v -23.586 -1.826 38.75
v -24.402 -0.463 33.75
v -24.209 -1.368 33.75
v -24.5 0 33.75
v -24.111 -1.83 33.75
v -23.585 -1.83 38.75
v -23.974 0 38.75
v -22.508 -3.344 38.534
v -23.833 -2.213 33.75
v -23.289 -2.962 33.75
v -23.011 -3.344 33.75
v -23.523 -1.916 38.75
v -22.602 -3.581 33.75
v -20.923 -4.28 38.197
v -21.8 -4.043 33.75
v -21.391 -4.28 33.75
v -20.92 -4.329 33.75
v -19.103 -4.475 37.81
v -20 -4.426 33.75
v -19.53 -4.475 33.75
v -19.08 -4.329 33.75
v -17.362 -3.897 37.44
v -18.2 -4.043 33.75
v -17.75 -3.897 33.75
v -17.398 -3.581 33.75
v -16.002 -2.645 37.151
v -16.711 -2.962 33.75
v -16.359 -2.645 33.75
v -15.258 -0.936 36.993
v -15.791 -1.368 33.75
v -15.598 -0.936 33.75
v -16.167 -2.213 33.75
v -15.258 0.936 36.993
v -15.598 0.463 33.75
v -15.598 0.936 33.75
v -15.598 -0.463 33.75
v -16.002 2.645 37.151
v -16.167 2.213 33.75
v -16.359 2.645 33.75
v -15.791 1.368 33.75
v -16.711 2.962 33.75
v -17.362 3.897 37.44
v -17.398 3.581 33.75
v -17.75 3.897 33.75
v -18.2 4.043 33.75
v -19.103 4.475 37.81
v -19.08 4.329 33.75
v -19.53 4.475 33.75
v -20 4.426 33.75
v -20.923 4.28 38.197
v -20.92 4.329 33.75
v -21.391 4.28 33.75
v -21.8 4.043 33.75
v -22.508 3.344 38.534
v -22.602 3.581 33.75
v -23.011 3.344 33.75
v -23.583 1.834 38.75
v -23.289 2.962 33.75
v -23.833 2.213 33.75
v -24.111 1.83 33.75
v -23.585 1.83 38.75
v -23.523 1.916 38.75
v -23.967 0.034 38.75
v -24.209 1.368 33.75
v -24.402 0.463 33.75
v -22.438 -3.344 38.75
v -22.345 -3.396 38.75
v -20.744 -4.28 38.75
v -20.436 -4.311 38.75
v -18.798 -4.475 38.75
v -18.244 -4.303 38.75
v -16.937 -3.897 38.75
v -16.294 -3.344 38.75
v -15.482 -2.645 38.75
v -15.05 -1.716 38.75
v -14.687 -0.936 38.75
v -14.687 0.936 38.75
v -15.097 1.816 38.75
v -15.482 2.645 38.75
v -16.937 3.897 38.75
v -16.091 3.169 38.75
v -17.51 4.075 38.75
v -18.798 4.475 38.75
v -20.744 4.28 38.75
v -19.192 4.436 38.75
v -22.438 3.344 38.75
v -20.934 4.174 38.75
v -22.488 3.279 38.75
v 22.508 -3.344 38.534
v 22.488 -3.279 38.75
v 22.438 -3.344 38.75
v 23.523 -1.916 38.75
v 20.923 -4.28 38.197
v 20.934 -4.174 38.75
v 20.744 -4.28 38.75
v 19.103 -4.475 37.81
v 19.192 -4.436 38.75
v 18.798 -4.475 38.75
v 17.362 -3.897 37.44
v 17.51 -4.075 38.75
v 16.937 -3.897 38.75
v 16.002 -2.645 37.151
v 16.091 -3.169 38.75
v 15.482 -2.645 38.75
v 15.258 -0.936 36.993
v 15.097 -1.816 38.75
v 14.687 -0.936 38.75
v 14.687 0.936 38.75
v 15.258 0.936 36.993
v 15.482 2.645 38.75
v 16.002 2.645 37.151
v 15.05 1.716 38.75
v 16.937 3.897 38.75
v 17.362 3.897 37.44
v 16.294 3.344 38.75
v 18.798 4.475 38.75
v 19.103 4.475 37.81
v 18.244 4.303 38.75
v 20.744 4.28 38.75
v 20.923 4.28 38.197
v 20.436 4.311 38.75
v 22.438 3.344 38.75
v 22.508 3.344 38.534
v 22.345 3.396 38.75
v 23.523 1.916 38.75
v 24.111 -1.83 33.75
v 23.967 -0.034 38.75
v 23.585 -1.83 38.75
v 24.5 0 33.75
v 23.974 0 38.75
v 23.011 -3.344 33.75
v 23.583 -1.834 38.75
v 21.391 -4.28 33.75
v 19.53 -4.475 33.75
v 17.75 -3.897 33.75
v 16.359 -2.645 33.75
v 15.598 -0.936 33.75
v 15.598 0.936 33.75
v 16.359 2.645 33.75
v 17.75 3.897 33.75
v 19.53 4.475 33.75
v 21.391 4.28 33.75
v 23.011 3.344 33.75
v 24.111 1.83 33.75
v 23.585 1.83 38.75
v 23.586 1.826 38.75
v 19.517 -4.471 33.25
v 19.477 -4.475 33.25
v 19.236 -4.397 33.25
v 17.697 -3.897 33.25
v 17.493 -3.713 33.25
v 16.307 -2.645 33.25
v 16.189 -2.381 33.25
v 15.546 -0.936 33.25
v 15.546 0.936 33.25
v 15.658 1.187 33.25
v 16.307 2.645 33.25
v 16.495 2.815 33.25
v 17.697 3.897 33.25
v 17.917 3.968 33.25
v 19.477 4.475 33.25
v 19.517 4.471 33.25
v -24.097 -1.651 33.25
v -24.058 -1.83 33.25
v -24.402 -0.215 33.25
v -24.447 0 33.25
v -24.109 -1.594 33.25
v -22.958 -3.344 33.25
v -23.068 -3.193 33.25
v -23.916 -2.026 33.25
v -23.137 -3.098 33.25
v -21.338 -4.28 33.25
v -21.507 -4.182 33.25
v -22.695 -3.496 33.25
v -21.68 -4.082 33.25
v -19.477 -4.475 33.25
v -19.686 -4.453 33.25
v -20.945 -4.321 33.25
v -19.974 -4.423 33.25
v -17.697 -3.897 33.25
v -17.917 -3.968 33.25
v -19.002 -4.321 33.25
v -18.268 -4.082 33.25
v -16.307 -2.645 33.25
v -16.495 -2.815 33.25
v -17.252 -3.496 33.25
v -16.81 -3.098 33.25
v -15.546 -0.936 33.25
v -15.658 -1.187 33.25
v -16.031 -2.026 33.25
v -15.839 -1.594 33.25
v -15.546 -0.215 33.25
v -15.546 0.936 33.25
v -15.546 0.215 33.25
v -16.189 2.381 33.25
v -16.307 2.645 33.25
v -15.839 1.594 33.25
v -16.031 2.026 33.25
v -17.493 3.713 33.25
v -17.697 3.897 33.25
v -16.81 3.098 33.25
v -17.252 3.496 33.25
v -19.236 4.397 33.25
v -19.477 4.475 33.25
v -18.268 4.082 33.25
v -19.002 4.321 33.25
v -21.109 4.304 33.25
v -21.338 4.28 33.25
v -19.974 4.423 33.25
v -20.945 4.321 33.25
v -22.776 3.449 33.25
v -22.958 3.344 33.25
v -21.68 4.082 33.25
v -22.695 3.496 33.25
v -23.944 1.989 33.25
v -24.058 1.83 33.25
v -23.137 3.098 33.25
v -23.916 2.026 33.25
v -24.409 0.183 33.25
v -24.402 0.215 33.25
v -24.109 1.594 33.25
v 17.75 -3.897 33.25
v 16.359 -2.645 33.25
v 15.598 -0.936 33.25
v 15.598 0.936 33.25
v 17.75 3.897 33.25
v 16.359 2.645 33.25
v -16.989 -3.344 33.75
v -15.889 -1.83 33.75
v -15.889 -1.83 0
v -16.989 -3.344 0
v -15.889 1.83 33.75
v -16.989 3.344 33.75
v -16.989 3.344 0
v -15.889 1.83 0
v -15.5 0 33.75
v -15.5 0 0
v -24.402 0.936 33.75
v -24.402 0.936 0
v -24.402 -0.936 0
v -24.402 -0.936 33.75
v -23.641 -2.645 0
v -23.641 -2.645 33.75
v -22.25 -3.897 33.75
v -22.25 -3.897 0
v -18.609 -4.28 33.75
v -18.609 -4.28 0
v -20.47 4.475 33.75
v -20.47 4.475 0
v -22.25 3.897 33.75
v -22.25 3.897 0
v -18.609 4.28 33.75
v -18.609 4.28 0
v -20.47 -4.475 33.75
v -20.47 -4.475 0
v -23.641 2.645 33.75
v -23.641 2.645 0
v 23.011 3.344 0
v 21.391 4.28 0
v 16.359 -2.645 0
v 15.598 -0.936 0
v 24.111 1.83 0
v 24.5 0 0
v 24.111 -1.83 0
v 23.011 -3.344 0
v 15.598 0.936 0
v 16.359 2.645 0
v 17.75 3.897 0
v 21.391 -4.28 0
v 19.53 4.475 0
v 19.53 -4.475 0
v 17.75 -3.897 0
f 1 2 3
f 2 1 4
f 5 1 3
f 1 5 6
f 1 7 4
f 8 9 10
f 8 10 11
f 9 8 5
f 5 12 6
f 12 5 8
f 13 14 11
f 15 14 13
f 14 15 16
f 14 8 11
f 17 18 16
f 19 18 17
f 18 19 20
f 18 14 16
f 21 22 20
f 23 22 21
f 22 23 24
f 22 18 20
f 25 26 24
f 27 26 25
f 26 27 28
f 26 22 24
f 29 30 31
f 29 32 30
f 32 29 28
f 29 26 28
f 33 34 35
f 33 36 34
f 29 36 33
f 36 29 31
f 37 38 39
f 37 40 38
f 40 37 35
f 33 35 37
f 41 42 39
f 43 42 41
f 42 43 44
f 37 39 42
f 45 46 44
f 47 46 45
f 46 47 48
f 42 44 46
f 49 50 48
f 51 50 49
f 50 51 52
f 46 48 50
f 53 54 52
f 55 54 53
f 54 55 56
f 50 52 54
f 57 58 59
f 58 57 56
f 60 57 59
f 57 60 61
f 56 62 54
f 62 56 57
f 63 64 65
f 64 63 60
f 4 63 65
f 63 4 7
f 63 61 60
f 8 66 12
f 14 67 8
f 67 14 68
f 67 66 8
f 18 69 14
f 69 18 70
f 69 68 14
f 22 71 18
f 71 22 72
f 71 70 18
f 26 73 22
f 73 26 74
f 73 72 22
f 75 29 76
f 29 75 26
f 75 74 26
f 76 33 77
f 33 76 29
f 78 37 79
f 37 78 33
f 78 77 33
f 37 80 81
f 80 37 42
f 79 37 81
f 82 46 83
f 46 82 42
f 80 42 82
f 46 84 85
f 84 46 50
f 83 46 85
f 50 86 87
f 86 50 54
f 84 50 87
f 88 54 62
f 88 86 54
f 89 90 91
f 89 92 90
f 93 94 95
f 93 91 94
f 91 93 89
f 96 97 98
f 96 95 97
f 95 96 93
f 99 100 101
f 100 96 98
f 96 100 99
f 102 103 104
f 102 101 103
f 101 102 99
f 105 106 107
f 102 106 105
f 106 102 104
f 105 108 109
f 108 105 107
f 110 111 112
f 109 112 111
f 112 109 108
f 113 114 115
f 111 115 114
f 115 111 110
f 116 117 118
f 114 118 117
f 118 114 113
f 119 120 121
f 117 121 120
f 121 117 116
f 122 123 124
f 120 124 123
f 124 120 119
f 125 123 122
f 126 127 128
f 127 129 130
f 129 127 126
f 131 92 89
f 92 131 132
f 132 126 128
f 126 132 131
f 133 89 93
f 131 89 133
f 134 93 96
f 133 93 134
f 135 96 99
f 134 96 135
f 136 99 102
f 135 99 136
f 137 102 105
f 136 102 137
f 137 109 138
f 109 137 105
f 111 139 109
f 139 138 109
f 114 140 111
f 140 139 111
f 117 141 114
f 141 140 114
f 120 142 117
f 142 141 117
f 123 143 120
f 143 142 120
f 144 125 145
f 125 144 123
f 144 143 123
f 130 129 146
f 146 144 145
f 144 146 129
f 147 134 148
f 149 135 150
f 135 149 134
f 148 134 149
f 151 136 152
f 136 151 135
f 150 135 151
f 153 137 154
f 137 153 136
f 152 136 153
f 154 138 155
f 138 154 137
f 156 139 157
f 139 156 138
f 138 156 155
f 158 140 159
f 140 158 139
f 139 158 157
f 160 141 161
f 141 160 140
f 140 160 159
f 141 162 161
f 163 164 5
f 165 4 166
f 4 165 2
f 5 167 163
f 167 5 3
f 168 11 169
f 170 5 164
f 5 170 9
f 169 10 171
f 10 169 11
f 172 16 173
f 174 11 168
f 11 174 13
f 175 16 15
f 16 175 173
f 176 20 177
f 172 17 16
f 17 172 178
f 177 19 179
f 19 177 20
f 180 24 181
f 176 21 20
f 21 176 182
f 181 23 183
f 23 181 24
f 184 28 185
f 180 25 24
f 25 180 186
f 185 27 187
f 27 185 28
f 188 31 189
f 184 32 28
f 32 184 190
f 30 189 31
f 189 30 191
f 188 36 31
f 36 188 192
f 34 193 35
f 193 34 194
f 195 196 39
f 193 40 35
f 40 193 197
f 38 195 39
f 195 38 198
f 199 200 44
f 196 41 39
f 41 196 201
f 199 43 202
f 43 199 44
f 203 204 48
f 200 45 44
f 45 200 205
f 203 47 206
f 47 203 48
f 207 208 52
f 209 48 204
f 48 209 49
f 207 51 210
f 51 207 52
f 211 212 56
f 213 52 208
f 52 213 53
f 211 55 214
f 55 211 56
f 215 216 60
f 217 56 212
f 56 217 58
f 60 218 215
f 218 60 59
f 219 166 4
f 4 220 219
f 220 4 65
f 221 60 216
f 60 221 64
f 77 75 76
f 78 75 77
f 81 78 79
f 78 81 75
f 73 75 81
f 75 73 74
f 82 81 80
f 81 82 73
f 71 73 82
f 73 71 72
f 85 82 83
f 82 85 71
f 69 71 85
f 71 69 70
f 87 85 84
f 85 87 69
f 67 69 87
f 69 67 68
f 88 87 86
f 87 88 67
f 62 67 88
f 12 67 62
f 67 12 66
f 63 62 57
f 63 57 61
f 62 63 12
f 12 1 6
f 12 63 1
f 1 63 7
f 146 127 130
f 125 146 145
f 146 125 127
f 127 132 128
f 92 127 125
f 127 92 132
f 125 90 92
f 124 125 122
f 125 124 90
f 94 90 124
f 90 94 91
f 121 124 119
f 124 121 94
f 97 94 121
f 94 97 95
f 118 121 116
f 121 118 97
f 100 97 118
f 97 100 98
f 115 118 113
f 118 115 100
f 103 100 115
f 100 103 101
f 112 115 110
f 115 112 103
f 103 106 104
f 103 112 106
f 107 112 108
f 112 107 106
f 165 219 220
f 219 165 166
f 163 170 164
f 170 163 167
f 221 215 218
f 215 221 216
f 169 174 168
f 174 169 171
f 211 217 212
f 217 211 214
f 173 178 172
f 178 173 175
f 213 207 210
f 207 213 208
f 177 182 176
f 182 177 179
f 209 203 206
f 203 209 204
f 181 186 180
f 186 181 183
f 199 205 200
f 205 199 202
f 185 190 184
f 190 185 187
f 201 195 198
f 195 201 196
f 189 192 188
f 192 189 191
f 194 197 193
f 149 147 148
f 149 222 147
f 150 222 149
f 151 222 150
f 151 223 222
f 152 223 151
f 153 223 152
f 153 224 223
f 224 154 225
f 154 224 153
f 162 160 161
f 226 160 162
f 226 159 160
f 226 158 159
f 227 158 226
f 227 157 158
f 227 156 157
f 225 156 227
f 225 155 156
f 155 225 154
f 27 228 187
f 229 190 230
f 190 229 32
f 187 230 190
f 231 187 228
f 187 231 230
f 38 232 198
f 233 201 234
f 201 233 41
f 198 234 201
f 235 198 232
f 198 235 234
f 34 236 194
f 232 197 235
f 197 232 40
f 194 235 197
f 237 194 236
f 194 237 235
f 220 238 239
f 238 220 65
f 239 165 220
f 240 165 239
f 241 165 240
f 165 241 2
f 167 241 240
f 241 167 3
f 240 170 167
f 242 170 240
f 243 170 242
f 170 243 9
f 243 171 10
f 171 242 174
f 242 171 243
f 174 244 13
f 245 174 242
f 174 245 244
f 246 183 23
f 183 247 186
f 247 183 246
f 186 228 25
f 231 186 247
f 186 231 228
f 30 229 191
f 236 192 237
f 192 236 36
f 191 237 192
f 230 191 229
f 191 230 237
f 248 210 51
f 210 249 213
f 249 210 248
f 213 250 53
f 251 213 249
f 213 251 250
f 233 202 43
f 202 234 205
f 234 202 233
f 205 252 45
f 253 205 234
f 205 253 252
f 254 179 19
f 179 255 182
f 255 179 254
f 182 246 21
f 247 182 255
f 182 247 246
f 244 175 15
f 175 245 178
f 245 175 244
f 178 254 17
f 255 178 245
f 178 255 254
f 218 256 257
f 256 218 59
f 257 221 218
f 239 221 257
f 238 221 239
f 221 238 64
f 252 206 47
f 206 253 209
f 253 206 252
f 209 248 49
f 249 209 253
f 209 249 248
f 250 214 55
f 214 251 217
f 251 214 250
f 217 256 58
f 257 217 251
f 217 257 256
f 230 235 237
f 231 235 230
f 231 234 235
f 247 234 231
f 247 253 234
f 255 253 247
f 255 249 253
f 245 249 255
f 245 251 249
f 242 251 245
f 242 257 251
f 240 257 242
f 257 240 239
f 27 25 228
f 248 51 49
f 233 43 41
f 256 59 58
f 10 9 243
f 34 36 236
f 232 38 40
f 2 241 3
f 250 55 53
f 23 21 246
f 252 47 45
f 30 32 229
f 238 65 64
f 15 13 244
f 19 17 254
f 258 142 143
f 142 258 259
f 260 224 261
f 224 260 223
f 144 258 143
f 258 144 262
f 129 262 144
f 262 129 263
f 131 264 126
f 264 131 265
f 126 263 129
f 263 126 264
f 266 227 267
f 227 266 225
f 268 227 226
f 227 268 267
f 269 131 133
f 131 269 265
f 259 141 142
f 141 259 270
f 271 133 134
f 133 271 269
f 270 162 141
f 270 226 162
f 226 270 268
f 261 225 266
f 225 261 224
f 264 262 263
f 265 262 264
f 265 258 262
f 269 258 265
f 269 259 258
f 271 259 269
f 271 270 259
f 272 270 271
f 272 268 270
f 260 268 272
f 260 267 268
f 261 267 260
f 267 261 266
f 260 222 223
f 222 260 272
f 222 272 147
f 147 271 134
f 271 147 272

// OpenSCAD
/* doodle-meta {"version":1,"parameters":{"leg_length":{"label":"Leg Length","description":"Length of the straight vertical legs","unit":"mm","feature":"leg_length"},"bend_radius":{"label":"Bend Radius","description":"Radius of the semi-circular top bend (centerline)","unit":"mm","feature":"bend_radius"},"handle_diameter":{"label":"Handle Diameter","description":"Diameter of the circular cross-section","unit":"mm","feature":"handle_diameter"}},"features":{"leg_length":{"kind":"dimension","axis":"z","label":"Leg Length"},"bend_radius":{"kind":"dimension","axis":"x","label":"Bend Radius"},"handle_diameter":{"kind":"dimension","axis":"y","label":"Handle Diameter"}}} */

// Parameters
leg_length = 33.75;
bend_radius = 20;
handle_diameter = 9;

// Derived constants
handle_radius = handle_diameter / 2;
total_height = leg_length + bend_radius + handle_radius;

// Module for the handle path (skeleton)
// The path consists of two vertical legs and a semi-circular top.
// Origin (0,0,0) is at the bottom center of the handle.
module handle_path() {
    // Left Leg
    // Extends from Z=0 to Z=leg_length
    // Centered at X = -bend_radius
    translate([-bend_radius, 0, 0])
        cube([handle_diameter, handle_diameter, leg_length], center=true);
        
    // Right Leg
    // Extends from Z=0 to Z=leg_length
    // Centered at X = +bend_radius
    translate([bend_radius, 0, 0])
        cube([handle_diameter, handle_diameter, leg_length], center=true);
        
    // Top Bend (Semi-circle)
    // Center of the arc is at (0, 0, leg_length)
    // The arc goes from angle 0 (Right) to 180 (Left) in the XZ plane
    // We use rotate_extrude to create the torus segment
    
    // Define the 2D profile in the XZ plane (relative to the rotation axis Z)
    // The profile is a circle of radius handle_radius centered at (bend_radius, 0)
    // rotate_extrude rotates around Z. 
    // To get a semi-circle in XZ, we rotate the profile around Z by 180 degrees? 
    // No, rotate_extrude creates a full torus. We need to intersect with a half-space or use a partial extrusion.
    // OpenSCAD doesn't have partial rotate_extrude directly.
    // Alternative: Use a torus and intersect with a cube to keep only the top half.
    
    // Let's build the full torus first, then cut it.
    // Torus major radius = bend_radius, minor radius = handle_radius
    // Positioned at Z = leg_length
    translate([0, 0, leg_length])
        rotate([90, 0, 0]) // Rotate so the torus lies in XZ plane (axis along Y)
            rotate_extrude()
                translate([bend_radius, 0])
                    circle(r=handle_radius);
}

// Main Design
union() {
    // 1. The Legs
    // Left Leg
    translate([-bend_radius, 0, leg_length/2])
        cylinder(h=leg_length, r=handle_radius, center=true);
        
    // Right Leg
    translate([bend_radius, 0, leg_length/2])
        cylinder(h=leg_length, r=handle_radius, center=true);
        
    // 2. The Bend
    // Create a full torus and intersect with the upper half (Z >= leg_length)
    // The torus center is at (0, 0, leg_length)
    // The torus lies in the XZ plane (axis along Y)
    
    intersection() {
        // Full Torus
        translate([0, 0, leg_length])
            rotate([90, 0, 0])
                rotate_extrude()
                    translate([bend_radius, 0])
                        circle(r=handle_radius);
                        
        // Keep only the top half (Z >= leg_length)
        // The torus extends from Z = leg_length - handle_radius to leg_length + handle_radius
        // We want to keep Z >= leg_length.
        // However, the legs connect at Z=leg_length. 
        // The torus center is at Z=leg_length.
        // The "top" of the U is the semi-circle above the center line.
        // So we keep Z >= leg_length.
        translate([0, 0, leg_length + handle_radius/2])
            cube([bend_radius*2 + handle_diameter, handle_diameter, handle_radius + 1], center=true);
    }
    
    // Ensure smooth connection between legs and bend
    // The legs end at Z=leg_length. The torus starts at Z=leg_length.
    // They share the same cross-section at the junction.
    // The union should handle this seamlessly.
}

// Adjust position to sit on build plate (Z=0)
// The legs start at Z=0 (centered at leg_length/2 with height leg_length)
// The bend is above.
// The lowest point is Z=0.
